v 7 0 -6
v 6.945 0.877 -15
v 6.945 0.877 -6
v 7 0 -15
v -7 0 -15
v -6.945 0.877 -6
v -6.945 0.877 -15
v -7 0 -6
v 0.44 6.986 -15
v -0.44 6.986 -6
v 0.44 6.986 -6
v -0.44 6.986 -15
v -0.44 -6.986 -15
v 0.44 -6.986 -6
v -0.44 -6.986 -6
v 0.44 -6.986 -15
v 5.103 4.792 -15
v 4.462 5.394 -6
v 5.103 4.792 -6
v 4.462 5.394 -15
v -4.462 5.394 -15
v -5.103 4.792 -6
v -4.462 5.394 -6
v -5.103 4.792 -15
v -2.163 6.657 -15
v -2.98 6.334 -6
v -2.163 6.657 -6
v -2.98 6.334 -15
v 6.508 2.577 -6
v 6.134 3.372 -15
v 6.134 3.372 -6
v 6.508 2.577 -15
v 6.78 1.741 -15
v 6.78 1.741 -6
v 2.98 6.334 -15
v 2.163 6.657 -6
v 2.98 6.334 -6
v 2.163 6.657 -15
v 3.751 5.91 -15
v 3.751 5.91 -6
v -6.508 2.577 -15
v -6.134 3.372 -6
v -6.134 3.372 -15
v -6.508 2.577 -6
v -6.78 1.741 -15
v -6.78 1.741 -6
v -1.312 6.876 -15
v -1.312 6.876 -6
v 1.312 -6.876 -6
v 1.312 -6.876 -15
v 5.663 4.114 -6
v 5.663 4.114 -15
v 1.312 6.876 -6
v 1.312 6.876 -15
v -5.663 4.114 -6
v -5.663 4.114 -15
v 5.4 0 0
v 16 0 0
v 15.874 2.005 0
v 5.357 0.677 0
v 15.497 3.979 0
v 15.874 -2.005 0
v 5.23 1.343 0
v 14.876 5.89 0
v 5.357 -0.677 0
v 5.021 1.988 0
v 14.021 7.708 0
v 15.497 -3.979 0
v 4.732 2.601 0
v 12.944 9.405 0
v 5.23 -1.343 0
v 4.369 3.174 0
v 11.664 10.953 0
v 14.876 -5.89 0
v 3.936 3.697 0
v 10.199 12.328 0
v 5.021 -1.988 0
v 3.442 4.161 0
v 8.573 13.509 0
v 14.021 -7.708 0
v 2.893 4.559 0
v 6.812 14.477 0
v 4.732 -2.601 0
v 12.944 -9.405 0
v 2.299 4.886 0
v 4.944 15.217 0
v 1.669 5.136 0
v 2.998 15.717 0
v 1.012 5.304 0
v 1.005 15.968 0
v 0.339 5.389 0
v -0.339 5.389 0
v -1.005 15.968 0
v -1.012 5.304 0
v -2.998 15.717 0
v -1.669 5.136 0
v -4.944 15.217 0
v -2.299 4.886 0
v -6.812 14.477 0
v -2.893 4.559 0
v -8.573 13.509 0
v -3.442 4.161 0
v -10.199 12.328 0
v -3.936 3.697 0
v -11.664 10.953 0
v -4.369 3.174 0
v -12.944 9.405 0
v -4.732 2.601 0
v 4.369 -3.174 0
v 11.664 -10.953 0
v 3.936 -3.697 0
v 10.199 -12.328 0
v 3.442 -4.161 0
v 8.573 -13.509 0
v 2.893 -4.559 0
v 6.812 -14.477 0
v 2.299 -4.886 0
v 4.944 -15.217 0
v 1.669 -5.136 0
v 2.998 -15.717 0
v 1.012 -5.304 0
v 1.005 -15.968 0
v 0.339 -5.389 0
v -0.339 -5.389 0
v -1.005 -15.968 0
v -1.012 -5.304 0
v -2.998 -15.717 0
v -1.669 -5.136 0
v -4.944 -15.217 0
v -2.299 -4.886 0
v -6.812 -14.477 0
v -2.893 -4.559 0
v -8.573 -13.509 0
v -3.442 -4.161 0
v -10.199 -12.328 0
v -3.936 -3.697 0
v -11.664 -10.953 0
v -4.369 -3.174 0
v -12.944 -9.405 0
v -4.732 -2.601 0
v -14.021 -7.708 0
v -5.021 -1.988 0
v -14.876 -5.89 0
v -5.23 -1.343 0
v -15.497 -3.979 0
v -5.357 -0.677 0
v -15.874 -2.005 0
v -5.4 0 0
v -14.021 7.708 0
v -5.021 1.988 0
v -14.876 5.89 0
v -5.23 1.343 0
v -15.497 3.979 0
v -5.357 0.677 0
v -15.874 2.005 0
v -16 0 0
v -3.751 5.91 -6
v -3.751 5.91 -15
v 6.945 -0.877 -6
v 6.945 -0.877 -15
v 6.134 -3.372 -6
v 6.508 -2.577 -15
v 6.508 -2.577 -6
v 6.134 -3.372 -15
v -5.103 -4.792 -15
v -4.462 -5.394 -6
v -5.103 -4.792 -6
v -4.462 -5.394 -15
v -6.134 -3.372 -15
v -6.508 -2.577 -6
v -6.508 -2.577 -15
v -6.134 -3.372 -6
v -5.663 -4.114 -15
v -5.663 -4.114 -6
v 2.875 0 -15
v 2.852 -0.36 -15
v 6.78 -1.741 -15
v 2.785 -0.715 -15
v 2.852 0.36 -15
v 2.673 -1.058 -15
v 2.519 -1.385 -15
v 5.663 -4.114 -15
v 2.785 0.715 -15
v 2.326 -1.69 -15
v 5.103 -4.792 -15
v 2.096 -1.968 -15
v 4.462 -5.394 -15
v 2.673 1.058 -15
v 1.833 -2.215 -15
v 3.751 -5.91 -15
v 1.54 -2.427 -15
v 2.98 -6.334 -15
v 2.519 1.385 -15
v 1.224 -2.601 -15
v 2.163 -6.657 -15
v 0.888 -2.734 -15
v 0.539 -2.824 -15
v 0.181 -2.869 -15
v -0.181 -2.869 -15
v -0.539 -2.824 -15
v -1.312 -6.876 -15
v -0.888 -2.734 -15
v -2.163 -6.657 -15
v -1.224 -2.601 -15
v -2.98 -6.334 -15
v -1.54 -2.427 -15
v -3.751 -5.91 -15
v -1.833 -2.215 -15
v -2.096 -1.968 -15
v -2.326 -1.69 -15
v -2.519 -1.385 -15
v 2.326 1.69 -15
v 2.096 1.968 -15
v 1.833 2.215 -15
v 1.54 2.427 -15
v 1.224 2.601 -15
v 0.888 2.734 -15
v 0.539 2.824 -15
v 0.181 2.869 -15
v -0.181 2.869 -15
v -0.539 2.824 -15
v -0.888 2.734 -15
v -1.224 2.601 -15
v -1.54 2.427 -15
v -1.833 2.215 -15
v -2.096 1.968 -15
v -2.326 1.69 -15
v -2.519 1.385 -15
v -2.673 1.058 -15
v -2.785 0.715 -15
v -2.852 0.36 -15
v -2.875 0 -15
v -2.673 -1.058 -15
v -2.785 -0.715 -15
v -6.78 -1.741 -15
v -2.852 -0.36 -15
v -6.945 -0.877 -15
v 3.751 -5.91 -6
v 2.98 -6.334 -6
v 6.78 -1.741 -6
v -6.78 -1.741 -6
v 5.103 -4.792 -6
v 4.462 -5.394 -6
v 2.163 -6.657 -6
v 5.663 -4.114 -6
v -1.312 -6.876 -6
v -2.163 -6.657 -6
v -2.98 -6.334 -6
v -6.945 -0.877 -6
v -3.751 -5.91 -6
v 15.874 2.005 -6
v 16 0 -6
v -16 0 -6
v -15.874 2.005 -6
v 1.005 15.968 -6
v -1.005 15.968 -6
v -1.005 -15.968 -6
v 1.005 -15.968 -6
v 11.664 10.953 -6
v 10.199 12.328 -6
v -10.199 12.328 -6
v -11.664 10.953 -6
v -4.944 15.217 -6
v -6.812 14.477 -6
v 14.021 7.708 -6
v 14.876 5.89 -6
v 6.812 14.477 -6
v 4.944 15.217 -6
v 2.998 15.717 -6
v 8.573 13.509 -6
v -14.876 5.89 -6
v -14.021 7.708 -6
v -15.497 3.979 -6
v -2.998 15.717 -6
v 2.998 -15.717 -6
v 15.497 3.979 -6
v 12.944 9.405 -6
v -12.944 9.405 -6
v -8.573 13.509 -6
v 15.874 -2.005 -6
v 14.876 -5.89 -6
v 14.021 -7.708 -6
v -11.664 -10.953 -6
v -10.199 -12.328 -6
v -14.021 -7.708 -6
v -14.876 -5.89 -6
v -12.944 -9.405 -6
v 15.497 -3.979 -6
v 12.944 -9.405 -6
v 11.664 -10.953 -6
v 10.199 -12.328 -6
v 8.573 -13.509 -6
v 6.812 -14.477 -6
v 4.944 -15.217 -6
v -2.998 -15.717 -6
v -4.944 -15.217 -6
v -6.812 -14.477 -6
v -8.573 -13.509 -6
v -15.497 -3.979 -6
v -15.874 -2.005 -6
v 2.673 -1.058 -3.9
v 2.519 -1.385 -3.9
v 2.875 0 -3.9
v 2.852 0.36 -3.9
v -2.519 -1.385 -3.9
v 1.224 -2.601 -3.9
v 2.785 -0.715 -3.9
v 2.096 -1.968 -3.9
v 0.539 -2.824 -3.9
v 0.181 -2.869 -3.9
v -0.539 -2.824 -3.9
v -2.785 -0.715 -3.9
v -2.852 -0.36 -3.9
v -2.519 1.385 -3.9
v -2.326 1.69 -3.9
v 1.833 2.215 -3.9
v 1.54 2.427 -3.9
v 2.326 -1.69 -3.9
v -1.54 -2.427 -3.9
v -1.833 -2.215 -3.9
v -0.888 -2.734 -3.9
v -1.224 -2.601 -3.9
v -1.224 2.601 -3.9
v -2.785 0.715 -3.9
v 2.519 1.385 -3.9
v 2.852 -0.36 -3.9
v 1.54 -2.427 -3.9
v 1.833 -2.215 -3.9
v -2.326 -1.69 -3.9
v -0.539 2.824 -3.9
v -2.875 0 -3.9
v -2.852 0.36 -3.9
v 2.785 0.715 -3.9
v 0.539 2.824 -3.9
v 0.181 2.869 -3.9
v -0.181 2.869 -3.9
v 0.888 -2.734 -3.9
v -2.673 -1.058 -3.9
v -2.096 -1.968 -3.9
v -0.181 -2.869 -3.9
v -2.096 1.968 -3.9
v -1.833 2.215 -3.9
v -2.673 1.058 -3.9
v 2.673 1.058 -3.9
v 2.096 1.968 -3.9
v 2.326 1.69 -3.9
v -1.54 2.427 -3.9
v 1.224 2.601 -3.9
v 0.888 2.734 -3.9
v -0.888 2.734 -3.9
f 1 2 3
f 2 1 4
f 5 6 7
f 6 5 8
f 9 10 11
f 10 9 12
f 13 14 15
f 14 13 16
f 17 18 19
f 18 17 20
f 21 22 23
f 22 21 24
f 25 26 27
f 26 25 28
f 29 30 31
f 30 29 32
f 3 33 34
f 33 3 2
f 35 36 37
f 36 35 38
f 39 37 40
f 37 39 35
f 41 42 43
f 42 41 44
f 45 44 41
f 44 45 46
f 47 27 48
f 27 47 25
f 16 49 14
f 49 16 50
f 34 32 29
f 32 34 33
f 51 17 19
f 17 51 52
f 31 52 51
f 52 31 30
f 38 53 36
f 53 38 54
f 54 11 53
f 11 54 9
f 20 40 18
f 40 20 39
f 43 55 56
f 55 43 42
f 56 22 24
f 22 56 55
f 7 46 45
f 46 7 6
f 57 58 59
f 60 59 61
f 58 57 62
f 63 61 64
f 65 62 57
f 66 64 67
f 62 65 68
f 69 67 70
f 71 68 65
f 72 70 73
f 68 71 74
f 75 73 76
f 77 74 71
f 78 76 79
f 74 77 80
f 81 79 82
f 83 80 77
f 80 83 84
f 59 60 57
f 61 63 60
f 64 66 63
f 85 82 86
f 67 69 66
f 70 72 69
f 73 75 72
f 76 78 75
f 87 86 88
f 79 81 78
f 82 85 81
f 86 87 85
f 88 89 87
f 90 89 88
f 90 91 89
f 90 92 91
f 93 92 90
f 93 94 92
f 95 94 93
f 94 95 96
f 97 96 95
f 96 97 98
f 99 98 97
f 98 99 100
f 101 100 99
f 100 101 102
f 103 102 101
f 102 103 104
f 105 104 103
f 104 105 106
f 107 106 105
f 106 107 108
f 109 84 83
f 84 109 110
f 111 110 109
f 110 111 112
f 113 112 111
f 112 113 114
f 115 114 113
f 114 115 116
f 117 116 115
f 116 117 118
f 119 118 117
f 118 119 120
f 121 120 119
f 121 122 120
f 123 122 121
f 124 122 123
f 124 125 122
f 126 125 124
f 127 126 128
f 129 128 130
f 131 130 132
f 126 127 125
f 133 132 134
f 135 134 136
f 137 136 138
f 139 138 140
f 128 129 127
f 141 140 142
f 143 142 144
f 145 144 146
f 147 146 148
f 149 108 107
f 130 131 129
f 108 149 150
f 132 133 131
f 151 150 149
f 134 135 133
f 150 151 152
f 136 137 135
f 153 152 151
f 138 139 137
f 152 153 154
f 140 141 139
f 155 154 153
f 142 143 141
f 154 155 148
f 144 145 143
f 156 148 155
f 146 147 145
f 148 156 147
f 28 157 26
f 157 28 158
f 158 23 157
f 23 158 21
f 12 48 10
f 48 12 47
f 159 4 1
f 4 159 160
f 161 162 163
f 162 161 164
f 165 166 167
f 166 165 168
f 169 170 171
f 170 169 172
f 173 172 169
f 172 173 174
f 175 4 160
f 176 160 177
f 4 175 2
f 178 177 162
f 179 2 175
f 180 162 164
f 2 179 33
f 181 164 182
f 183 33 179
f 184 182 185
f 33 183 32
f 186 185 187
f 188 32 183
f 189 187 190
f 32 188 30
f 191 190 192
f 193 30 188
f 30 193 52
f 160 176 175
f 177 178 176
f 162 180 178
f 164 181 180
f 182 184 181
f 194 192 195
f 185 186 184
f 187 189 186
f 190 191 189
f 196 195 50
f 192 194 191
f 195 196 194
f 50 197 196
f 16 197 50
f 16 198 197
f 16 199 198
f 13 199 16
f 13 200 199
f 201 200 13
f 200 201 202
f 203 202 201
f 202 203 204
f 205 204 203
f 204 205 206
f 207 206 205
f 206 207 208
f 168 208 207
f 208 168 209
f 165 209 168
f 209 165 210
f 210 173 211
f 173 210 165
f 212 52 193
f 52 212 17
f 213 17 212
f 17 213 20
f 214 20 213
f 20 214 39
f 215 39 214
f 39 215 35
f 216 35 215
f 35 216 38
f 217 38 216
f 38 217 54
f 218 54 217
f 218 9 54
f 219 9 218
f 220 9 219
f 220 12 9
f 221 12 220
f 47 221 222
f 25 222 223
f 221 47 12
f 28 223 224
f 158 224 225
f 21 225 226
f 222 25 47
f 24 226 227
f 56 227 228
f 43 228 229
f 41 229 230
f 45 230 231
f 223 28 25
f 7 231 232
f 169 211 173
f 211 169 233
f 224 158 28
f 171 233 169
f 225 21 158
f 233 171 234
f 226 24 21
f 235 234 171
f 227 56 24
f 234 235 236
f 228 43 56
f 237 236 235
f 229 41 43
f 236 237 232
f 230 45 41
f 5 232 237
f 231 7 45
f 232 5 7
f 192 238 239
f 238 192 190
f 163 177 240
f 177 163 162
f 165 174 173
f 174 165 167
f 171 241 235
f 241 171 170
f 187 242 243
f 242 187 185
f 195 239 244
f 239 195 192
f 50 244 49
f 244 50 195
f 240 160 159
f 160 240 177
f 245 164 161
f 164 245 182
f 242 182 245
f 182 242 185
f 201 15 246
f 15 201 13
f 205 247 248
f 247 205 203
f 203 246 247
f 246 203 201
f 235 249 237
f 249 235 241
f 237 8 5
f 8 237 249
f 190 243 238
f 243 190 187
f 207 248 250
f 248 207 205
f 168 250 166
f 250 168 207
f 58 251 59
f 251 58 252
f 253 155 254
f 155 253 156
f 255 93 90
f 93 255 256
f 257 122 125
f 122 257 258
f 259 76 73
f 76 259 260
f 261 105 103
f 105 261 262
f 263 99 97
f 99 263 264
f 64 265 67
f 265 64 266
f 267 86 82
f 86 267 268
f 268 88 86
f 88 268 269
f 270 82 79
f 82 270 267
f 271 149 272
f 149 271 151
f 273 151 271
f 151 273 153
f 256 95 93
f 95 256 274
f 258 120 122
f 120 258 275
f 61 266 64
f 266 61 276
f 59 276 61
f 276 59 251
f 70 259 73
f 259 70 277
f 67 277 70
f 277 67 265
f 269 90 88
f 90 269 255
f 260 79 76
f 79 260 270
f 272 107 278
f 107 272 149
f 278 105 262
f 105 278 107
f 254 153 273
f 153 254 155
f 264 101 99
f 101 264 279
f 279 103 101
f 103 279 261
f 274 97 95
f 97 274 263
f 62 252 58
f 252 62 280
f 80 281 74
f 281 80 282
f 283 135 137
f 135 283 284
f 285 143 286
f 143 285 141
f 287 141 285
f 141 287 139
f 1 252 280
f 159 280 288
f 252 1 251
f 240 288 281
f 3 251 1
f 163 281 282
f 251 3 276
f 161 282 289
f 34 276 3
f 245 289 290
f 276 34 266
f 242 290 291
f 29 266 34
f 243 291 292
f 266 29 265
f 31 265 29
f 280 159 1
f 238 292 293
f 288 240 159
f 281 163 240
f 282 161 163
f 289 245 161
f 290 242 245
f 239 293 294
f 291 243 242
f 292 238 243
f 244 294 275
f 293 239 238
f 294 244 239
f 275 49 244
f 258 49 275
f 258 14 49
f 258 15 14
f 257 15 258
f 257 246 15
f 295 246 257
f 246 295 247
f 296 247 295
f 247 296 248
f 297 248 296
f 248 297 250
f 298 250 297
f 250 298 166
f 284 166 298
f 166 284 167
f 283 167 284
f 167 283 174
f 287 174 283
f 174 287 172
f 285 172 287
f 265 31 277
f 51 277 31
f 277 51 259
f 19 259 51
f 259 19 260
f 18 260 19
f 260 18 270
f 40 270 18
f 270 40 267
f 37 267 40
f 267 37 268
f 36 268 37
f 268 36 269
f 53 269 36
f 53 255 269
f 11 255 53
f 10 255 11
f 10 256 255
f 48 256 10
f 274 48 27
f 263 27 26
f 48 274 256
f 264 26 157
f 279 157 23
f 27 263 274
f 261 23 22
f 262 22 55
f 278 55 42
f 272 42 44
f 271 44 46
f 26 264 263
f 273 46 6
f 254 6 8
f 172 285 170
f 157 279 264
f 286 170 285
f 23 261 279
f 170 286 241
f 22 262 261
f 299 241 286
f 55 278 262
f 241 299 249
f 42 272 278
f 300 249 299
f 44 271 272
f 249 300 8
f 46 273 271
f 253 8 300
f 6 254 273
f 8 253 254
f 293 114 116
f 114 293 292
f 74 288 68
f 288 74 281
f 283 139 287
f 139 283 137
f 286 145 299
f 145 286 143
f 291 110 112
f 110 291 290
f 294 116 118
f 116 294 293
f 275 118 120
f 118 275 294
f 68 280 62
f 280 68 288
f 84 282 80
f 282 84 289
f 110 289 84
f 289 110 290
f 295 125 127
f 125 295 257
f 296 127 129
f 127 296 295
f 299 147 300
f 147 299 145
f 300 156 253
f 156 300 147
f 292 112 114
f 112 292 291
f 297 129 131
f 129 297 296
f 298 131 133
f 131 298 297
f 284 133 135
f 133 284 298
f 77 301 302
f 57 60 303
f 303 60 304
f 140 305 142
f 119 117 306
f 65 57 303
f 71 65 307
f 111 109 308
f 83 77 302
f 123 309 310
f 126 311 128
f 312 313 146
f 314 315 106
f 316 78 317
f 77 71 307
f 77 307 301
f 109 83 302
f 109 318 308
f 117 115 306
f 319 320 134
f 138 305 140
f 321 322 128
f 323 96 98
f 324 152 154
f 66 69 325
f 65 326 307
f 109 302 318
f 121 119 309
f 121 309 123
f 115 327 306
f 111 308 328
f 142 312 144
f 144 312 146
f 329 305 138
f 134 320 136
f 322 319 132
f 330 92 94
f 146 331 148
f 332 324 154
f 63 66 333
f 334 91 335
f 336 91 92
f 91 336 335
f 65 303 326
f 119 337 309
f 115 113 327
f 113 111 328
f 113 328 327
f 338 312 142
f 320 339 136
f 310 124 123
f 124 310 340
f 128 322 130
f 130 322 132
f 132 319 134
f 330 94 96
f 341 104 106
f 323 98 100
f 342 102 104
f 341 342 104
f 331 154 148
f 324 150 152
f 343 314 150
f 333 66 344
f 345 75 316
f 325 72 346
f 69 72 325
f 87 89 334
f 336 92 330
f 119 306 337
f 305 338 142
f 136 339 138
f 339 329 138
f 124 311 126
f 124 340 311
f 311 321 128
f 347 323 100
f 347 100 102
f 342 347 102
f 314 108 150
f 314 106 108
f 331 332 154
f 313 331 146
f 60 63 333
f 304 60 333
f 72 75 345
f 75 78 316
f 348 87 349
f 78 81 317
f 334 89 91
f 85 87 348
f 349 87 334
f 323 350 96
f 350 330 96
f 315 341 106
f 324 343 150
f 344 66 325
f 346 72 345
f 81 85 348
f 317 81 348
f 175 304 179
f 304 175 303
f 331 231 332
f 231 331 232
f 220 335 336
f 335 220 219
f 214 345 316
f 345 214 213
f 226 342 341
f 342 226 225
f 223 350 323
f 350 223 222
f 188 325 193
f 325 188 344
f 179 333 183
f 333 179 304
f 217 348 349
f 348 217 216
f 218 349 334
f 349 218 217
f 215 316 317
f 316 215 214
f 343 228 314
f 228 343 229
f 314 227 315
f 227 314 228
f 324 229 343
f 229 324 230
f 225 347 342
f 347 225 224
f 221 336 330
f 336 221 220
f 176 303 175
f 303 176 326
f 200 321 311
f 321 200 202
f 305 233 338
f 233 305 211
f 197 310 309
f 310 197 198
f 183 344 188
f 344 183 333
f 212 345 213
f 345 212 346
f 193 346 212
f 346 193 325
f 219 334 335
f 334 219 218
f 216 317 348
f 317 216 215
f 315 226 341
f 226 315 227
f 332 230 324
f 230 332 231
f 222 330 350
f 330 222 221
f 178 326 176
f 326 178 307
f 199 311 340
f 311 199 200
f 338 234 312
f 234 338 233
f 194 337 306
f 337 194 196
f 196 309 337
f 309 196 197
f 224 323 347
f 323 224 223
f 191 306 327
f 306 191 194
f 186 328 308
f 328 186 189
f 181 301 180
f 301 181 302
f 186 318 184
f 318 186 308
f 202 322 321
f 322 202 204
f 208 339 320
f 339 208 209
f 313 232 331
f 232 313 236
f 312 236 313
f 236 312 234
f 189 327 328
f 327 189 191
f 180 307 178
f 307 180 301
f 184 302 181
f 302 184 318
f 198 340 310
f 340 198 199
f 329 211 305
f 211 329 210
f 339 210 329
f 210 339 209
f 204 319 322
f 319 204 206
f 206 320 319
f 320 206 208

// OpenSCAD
$fn = 50;


difference() {
	union() {
		translate(v = [0, 0, -15.0000000000]) {
			cylinder(h = 15, r = 7.0000000000);
		}
		translate(v = [0, 0, -6.0000000000]) {
			cylinder(h = 6, r = 16.0000000000);
		}
	}
	union() {
		translate(v = [0, 0, 0]) {
			rotate(a = [0, 0, 0]) {
				difference() {
					union() {
						#translate(v = [0, 0, -15.0000000000]) {
							cylinder(h = 15, r = 2.6000000000);
						}
						#translate(v = [0, 0, -3.9000000000]) {
							cylinder(h = 3.9000000000, r = 7.0000000000, r1 = 2.8750000000, r2 = 5.4000000000);
						}
						#translate(v = [0, 0, -15.0000000000]) {
							cylinder(h = 15, r = 2.8750000000);
						}
						#translate(v = [0, 0, -15.0000000000]) {
							cylinder(h = 15, r = 2.6000000000);
						}
					}
					union();
				}
			}
		}
	}
}
